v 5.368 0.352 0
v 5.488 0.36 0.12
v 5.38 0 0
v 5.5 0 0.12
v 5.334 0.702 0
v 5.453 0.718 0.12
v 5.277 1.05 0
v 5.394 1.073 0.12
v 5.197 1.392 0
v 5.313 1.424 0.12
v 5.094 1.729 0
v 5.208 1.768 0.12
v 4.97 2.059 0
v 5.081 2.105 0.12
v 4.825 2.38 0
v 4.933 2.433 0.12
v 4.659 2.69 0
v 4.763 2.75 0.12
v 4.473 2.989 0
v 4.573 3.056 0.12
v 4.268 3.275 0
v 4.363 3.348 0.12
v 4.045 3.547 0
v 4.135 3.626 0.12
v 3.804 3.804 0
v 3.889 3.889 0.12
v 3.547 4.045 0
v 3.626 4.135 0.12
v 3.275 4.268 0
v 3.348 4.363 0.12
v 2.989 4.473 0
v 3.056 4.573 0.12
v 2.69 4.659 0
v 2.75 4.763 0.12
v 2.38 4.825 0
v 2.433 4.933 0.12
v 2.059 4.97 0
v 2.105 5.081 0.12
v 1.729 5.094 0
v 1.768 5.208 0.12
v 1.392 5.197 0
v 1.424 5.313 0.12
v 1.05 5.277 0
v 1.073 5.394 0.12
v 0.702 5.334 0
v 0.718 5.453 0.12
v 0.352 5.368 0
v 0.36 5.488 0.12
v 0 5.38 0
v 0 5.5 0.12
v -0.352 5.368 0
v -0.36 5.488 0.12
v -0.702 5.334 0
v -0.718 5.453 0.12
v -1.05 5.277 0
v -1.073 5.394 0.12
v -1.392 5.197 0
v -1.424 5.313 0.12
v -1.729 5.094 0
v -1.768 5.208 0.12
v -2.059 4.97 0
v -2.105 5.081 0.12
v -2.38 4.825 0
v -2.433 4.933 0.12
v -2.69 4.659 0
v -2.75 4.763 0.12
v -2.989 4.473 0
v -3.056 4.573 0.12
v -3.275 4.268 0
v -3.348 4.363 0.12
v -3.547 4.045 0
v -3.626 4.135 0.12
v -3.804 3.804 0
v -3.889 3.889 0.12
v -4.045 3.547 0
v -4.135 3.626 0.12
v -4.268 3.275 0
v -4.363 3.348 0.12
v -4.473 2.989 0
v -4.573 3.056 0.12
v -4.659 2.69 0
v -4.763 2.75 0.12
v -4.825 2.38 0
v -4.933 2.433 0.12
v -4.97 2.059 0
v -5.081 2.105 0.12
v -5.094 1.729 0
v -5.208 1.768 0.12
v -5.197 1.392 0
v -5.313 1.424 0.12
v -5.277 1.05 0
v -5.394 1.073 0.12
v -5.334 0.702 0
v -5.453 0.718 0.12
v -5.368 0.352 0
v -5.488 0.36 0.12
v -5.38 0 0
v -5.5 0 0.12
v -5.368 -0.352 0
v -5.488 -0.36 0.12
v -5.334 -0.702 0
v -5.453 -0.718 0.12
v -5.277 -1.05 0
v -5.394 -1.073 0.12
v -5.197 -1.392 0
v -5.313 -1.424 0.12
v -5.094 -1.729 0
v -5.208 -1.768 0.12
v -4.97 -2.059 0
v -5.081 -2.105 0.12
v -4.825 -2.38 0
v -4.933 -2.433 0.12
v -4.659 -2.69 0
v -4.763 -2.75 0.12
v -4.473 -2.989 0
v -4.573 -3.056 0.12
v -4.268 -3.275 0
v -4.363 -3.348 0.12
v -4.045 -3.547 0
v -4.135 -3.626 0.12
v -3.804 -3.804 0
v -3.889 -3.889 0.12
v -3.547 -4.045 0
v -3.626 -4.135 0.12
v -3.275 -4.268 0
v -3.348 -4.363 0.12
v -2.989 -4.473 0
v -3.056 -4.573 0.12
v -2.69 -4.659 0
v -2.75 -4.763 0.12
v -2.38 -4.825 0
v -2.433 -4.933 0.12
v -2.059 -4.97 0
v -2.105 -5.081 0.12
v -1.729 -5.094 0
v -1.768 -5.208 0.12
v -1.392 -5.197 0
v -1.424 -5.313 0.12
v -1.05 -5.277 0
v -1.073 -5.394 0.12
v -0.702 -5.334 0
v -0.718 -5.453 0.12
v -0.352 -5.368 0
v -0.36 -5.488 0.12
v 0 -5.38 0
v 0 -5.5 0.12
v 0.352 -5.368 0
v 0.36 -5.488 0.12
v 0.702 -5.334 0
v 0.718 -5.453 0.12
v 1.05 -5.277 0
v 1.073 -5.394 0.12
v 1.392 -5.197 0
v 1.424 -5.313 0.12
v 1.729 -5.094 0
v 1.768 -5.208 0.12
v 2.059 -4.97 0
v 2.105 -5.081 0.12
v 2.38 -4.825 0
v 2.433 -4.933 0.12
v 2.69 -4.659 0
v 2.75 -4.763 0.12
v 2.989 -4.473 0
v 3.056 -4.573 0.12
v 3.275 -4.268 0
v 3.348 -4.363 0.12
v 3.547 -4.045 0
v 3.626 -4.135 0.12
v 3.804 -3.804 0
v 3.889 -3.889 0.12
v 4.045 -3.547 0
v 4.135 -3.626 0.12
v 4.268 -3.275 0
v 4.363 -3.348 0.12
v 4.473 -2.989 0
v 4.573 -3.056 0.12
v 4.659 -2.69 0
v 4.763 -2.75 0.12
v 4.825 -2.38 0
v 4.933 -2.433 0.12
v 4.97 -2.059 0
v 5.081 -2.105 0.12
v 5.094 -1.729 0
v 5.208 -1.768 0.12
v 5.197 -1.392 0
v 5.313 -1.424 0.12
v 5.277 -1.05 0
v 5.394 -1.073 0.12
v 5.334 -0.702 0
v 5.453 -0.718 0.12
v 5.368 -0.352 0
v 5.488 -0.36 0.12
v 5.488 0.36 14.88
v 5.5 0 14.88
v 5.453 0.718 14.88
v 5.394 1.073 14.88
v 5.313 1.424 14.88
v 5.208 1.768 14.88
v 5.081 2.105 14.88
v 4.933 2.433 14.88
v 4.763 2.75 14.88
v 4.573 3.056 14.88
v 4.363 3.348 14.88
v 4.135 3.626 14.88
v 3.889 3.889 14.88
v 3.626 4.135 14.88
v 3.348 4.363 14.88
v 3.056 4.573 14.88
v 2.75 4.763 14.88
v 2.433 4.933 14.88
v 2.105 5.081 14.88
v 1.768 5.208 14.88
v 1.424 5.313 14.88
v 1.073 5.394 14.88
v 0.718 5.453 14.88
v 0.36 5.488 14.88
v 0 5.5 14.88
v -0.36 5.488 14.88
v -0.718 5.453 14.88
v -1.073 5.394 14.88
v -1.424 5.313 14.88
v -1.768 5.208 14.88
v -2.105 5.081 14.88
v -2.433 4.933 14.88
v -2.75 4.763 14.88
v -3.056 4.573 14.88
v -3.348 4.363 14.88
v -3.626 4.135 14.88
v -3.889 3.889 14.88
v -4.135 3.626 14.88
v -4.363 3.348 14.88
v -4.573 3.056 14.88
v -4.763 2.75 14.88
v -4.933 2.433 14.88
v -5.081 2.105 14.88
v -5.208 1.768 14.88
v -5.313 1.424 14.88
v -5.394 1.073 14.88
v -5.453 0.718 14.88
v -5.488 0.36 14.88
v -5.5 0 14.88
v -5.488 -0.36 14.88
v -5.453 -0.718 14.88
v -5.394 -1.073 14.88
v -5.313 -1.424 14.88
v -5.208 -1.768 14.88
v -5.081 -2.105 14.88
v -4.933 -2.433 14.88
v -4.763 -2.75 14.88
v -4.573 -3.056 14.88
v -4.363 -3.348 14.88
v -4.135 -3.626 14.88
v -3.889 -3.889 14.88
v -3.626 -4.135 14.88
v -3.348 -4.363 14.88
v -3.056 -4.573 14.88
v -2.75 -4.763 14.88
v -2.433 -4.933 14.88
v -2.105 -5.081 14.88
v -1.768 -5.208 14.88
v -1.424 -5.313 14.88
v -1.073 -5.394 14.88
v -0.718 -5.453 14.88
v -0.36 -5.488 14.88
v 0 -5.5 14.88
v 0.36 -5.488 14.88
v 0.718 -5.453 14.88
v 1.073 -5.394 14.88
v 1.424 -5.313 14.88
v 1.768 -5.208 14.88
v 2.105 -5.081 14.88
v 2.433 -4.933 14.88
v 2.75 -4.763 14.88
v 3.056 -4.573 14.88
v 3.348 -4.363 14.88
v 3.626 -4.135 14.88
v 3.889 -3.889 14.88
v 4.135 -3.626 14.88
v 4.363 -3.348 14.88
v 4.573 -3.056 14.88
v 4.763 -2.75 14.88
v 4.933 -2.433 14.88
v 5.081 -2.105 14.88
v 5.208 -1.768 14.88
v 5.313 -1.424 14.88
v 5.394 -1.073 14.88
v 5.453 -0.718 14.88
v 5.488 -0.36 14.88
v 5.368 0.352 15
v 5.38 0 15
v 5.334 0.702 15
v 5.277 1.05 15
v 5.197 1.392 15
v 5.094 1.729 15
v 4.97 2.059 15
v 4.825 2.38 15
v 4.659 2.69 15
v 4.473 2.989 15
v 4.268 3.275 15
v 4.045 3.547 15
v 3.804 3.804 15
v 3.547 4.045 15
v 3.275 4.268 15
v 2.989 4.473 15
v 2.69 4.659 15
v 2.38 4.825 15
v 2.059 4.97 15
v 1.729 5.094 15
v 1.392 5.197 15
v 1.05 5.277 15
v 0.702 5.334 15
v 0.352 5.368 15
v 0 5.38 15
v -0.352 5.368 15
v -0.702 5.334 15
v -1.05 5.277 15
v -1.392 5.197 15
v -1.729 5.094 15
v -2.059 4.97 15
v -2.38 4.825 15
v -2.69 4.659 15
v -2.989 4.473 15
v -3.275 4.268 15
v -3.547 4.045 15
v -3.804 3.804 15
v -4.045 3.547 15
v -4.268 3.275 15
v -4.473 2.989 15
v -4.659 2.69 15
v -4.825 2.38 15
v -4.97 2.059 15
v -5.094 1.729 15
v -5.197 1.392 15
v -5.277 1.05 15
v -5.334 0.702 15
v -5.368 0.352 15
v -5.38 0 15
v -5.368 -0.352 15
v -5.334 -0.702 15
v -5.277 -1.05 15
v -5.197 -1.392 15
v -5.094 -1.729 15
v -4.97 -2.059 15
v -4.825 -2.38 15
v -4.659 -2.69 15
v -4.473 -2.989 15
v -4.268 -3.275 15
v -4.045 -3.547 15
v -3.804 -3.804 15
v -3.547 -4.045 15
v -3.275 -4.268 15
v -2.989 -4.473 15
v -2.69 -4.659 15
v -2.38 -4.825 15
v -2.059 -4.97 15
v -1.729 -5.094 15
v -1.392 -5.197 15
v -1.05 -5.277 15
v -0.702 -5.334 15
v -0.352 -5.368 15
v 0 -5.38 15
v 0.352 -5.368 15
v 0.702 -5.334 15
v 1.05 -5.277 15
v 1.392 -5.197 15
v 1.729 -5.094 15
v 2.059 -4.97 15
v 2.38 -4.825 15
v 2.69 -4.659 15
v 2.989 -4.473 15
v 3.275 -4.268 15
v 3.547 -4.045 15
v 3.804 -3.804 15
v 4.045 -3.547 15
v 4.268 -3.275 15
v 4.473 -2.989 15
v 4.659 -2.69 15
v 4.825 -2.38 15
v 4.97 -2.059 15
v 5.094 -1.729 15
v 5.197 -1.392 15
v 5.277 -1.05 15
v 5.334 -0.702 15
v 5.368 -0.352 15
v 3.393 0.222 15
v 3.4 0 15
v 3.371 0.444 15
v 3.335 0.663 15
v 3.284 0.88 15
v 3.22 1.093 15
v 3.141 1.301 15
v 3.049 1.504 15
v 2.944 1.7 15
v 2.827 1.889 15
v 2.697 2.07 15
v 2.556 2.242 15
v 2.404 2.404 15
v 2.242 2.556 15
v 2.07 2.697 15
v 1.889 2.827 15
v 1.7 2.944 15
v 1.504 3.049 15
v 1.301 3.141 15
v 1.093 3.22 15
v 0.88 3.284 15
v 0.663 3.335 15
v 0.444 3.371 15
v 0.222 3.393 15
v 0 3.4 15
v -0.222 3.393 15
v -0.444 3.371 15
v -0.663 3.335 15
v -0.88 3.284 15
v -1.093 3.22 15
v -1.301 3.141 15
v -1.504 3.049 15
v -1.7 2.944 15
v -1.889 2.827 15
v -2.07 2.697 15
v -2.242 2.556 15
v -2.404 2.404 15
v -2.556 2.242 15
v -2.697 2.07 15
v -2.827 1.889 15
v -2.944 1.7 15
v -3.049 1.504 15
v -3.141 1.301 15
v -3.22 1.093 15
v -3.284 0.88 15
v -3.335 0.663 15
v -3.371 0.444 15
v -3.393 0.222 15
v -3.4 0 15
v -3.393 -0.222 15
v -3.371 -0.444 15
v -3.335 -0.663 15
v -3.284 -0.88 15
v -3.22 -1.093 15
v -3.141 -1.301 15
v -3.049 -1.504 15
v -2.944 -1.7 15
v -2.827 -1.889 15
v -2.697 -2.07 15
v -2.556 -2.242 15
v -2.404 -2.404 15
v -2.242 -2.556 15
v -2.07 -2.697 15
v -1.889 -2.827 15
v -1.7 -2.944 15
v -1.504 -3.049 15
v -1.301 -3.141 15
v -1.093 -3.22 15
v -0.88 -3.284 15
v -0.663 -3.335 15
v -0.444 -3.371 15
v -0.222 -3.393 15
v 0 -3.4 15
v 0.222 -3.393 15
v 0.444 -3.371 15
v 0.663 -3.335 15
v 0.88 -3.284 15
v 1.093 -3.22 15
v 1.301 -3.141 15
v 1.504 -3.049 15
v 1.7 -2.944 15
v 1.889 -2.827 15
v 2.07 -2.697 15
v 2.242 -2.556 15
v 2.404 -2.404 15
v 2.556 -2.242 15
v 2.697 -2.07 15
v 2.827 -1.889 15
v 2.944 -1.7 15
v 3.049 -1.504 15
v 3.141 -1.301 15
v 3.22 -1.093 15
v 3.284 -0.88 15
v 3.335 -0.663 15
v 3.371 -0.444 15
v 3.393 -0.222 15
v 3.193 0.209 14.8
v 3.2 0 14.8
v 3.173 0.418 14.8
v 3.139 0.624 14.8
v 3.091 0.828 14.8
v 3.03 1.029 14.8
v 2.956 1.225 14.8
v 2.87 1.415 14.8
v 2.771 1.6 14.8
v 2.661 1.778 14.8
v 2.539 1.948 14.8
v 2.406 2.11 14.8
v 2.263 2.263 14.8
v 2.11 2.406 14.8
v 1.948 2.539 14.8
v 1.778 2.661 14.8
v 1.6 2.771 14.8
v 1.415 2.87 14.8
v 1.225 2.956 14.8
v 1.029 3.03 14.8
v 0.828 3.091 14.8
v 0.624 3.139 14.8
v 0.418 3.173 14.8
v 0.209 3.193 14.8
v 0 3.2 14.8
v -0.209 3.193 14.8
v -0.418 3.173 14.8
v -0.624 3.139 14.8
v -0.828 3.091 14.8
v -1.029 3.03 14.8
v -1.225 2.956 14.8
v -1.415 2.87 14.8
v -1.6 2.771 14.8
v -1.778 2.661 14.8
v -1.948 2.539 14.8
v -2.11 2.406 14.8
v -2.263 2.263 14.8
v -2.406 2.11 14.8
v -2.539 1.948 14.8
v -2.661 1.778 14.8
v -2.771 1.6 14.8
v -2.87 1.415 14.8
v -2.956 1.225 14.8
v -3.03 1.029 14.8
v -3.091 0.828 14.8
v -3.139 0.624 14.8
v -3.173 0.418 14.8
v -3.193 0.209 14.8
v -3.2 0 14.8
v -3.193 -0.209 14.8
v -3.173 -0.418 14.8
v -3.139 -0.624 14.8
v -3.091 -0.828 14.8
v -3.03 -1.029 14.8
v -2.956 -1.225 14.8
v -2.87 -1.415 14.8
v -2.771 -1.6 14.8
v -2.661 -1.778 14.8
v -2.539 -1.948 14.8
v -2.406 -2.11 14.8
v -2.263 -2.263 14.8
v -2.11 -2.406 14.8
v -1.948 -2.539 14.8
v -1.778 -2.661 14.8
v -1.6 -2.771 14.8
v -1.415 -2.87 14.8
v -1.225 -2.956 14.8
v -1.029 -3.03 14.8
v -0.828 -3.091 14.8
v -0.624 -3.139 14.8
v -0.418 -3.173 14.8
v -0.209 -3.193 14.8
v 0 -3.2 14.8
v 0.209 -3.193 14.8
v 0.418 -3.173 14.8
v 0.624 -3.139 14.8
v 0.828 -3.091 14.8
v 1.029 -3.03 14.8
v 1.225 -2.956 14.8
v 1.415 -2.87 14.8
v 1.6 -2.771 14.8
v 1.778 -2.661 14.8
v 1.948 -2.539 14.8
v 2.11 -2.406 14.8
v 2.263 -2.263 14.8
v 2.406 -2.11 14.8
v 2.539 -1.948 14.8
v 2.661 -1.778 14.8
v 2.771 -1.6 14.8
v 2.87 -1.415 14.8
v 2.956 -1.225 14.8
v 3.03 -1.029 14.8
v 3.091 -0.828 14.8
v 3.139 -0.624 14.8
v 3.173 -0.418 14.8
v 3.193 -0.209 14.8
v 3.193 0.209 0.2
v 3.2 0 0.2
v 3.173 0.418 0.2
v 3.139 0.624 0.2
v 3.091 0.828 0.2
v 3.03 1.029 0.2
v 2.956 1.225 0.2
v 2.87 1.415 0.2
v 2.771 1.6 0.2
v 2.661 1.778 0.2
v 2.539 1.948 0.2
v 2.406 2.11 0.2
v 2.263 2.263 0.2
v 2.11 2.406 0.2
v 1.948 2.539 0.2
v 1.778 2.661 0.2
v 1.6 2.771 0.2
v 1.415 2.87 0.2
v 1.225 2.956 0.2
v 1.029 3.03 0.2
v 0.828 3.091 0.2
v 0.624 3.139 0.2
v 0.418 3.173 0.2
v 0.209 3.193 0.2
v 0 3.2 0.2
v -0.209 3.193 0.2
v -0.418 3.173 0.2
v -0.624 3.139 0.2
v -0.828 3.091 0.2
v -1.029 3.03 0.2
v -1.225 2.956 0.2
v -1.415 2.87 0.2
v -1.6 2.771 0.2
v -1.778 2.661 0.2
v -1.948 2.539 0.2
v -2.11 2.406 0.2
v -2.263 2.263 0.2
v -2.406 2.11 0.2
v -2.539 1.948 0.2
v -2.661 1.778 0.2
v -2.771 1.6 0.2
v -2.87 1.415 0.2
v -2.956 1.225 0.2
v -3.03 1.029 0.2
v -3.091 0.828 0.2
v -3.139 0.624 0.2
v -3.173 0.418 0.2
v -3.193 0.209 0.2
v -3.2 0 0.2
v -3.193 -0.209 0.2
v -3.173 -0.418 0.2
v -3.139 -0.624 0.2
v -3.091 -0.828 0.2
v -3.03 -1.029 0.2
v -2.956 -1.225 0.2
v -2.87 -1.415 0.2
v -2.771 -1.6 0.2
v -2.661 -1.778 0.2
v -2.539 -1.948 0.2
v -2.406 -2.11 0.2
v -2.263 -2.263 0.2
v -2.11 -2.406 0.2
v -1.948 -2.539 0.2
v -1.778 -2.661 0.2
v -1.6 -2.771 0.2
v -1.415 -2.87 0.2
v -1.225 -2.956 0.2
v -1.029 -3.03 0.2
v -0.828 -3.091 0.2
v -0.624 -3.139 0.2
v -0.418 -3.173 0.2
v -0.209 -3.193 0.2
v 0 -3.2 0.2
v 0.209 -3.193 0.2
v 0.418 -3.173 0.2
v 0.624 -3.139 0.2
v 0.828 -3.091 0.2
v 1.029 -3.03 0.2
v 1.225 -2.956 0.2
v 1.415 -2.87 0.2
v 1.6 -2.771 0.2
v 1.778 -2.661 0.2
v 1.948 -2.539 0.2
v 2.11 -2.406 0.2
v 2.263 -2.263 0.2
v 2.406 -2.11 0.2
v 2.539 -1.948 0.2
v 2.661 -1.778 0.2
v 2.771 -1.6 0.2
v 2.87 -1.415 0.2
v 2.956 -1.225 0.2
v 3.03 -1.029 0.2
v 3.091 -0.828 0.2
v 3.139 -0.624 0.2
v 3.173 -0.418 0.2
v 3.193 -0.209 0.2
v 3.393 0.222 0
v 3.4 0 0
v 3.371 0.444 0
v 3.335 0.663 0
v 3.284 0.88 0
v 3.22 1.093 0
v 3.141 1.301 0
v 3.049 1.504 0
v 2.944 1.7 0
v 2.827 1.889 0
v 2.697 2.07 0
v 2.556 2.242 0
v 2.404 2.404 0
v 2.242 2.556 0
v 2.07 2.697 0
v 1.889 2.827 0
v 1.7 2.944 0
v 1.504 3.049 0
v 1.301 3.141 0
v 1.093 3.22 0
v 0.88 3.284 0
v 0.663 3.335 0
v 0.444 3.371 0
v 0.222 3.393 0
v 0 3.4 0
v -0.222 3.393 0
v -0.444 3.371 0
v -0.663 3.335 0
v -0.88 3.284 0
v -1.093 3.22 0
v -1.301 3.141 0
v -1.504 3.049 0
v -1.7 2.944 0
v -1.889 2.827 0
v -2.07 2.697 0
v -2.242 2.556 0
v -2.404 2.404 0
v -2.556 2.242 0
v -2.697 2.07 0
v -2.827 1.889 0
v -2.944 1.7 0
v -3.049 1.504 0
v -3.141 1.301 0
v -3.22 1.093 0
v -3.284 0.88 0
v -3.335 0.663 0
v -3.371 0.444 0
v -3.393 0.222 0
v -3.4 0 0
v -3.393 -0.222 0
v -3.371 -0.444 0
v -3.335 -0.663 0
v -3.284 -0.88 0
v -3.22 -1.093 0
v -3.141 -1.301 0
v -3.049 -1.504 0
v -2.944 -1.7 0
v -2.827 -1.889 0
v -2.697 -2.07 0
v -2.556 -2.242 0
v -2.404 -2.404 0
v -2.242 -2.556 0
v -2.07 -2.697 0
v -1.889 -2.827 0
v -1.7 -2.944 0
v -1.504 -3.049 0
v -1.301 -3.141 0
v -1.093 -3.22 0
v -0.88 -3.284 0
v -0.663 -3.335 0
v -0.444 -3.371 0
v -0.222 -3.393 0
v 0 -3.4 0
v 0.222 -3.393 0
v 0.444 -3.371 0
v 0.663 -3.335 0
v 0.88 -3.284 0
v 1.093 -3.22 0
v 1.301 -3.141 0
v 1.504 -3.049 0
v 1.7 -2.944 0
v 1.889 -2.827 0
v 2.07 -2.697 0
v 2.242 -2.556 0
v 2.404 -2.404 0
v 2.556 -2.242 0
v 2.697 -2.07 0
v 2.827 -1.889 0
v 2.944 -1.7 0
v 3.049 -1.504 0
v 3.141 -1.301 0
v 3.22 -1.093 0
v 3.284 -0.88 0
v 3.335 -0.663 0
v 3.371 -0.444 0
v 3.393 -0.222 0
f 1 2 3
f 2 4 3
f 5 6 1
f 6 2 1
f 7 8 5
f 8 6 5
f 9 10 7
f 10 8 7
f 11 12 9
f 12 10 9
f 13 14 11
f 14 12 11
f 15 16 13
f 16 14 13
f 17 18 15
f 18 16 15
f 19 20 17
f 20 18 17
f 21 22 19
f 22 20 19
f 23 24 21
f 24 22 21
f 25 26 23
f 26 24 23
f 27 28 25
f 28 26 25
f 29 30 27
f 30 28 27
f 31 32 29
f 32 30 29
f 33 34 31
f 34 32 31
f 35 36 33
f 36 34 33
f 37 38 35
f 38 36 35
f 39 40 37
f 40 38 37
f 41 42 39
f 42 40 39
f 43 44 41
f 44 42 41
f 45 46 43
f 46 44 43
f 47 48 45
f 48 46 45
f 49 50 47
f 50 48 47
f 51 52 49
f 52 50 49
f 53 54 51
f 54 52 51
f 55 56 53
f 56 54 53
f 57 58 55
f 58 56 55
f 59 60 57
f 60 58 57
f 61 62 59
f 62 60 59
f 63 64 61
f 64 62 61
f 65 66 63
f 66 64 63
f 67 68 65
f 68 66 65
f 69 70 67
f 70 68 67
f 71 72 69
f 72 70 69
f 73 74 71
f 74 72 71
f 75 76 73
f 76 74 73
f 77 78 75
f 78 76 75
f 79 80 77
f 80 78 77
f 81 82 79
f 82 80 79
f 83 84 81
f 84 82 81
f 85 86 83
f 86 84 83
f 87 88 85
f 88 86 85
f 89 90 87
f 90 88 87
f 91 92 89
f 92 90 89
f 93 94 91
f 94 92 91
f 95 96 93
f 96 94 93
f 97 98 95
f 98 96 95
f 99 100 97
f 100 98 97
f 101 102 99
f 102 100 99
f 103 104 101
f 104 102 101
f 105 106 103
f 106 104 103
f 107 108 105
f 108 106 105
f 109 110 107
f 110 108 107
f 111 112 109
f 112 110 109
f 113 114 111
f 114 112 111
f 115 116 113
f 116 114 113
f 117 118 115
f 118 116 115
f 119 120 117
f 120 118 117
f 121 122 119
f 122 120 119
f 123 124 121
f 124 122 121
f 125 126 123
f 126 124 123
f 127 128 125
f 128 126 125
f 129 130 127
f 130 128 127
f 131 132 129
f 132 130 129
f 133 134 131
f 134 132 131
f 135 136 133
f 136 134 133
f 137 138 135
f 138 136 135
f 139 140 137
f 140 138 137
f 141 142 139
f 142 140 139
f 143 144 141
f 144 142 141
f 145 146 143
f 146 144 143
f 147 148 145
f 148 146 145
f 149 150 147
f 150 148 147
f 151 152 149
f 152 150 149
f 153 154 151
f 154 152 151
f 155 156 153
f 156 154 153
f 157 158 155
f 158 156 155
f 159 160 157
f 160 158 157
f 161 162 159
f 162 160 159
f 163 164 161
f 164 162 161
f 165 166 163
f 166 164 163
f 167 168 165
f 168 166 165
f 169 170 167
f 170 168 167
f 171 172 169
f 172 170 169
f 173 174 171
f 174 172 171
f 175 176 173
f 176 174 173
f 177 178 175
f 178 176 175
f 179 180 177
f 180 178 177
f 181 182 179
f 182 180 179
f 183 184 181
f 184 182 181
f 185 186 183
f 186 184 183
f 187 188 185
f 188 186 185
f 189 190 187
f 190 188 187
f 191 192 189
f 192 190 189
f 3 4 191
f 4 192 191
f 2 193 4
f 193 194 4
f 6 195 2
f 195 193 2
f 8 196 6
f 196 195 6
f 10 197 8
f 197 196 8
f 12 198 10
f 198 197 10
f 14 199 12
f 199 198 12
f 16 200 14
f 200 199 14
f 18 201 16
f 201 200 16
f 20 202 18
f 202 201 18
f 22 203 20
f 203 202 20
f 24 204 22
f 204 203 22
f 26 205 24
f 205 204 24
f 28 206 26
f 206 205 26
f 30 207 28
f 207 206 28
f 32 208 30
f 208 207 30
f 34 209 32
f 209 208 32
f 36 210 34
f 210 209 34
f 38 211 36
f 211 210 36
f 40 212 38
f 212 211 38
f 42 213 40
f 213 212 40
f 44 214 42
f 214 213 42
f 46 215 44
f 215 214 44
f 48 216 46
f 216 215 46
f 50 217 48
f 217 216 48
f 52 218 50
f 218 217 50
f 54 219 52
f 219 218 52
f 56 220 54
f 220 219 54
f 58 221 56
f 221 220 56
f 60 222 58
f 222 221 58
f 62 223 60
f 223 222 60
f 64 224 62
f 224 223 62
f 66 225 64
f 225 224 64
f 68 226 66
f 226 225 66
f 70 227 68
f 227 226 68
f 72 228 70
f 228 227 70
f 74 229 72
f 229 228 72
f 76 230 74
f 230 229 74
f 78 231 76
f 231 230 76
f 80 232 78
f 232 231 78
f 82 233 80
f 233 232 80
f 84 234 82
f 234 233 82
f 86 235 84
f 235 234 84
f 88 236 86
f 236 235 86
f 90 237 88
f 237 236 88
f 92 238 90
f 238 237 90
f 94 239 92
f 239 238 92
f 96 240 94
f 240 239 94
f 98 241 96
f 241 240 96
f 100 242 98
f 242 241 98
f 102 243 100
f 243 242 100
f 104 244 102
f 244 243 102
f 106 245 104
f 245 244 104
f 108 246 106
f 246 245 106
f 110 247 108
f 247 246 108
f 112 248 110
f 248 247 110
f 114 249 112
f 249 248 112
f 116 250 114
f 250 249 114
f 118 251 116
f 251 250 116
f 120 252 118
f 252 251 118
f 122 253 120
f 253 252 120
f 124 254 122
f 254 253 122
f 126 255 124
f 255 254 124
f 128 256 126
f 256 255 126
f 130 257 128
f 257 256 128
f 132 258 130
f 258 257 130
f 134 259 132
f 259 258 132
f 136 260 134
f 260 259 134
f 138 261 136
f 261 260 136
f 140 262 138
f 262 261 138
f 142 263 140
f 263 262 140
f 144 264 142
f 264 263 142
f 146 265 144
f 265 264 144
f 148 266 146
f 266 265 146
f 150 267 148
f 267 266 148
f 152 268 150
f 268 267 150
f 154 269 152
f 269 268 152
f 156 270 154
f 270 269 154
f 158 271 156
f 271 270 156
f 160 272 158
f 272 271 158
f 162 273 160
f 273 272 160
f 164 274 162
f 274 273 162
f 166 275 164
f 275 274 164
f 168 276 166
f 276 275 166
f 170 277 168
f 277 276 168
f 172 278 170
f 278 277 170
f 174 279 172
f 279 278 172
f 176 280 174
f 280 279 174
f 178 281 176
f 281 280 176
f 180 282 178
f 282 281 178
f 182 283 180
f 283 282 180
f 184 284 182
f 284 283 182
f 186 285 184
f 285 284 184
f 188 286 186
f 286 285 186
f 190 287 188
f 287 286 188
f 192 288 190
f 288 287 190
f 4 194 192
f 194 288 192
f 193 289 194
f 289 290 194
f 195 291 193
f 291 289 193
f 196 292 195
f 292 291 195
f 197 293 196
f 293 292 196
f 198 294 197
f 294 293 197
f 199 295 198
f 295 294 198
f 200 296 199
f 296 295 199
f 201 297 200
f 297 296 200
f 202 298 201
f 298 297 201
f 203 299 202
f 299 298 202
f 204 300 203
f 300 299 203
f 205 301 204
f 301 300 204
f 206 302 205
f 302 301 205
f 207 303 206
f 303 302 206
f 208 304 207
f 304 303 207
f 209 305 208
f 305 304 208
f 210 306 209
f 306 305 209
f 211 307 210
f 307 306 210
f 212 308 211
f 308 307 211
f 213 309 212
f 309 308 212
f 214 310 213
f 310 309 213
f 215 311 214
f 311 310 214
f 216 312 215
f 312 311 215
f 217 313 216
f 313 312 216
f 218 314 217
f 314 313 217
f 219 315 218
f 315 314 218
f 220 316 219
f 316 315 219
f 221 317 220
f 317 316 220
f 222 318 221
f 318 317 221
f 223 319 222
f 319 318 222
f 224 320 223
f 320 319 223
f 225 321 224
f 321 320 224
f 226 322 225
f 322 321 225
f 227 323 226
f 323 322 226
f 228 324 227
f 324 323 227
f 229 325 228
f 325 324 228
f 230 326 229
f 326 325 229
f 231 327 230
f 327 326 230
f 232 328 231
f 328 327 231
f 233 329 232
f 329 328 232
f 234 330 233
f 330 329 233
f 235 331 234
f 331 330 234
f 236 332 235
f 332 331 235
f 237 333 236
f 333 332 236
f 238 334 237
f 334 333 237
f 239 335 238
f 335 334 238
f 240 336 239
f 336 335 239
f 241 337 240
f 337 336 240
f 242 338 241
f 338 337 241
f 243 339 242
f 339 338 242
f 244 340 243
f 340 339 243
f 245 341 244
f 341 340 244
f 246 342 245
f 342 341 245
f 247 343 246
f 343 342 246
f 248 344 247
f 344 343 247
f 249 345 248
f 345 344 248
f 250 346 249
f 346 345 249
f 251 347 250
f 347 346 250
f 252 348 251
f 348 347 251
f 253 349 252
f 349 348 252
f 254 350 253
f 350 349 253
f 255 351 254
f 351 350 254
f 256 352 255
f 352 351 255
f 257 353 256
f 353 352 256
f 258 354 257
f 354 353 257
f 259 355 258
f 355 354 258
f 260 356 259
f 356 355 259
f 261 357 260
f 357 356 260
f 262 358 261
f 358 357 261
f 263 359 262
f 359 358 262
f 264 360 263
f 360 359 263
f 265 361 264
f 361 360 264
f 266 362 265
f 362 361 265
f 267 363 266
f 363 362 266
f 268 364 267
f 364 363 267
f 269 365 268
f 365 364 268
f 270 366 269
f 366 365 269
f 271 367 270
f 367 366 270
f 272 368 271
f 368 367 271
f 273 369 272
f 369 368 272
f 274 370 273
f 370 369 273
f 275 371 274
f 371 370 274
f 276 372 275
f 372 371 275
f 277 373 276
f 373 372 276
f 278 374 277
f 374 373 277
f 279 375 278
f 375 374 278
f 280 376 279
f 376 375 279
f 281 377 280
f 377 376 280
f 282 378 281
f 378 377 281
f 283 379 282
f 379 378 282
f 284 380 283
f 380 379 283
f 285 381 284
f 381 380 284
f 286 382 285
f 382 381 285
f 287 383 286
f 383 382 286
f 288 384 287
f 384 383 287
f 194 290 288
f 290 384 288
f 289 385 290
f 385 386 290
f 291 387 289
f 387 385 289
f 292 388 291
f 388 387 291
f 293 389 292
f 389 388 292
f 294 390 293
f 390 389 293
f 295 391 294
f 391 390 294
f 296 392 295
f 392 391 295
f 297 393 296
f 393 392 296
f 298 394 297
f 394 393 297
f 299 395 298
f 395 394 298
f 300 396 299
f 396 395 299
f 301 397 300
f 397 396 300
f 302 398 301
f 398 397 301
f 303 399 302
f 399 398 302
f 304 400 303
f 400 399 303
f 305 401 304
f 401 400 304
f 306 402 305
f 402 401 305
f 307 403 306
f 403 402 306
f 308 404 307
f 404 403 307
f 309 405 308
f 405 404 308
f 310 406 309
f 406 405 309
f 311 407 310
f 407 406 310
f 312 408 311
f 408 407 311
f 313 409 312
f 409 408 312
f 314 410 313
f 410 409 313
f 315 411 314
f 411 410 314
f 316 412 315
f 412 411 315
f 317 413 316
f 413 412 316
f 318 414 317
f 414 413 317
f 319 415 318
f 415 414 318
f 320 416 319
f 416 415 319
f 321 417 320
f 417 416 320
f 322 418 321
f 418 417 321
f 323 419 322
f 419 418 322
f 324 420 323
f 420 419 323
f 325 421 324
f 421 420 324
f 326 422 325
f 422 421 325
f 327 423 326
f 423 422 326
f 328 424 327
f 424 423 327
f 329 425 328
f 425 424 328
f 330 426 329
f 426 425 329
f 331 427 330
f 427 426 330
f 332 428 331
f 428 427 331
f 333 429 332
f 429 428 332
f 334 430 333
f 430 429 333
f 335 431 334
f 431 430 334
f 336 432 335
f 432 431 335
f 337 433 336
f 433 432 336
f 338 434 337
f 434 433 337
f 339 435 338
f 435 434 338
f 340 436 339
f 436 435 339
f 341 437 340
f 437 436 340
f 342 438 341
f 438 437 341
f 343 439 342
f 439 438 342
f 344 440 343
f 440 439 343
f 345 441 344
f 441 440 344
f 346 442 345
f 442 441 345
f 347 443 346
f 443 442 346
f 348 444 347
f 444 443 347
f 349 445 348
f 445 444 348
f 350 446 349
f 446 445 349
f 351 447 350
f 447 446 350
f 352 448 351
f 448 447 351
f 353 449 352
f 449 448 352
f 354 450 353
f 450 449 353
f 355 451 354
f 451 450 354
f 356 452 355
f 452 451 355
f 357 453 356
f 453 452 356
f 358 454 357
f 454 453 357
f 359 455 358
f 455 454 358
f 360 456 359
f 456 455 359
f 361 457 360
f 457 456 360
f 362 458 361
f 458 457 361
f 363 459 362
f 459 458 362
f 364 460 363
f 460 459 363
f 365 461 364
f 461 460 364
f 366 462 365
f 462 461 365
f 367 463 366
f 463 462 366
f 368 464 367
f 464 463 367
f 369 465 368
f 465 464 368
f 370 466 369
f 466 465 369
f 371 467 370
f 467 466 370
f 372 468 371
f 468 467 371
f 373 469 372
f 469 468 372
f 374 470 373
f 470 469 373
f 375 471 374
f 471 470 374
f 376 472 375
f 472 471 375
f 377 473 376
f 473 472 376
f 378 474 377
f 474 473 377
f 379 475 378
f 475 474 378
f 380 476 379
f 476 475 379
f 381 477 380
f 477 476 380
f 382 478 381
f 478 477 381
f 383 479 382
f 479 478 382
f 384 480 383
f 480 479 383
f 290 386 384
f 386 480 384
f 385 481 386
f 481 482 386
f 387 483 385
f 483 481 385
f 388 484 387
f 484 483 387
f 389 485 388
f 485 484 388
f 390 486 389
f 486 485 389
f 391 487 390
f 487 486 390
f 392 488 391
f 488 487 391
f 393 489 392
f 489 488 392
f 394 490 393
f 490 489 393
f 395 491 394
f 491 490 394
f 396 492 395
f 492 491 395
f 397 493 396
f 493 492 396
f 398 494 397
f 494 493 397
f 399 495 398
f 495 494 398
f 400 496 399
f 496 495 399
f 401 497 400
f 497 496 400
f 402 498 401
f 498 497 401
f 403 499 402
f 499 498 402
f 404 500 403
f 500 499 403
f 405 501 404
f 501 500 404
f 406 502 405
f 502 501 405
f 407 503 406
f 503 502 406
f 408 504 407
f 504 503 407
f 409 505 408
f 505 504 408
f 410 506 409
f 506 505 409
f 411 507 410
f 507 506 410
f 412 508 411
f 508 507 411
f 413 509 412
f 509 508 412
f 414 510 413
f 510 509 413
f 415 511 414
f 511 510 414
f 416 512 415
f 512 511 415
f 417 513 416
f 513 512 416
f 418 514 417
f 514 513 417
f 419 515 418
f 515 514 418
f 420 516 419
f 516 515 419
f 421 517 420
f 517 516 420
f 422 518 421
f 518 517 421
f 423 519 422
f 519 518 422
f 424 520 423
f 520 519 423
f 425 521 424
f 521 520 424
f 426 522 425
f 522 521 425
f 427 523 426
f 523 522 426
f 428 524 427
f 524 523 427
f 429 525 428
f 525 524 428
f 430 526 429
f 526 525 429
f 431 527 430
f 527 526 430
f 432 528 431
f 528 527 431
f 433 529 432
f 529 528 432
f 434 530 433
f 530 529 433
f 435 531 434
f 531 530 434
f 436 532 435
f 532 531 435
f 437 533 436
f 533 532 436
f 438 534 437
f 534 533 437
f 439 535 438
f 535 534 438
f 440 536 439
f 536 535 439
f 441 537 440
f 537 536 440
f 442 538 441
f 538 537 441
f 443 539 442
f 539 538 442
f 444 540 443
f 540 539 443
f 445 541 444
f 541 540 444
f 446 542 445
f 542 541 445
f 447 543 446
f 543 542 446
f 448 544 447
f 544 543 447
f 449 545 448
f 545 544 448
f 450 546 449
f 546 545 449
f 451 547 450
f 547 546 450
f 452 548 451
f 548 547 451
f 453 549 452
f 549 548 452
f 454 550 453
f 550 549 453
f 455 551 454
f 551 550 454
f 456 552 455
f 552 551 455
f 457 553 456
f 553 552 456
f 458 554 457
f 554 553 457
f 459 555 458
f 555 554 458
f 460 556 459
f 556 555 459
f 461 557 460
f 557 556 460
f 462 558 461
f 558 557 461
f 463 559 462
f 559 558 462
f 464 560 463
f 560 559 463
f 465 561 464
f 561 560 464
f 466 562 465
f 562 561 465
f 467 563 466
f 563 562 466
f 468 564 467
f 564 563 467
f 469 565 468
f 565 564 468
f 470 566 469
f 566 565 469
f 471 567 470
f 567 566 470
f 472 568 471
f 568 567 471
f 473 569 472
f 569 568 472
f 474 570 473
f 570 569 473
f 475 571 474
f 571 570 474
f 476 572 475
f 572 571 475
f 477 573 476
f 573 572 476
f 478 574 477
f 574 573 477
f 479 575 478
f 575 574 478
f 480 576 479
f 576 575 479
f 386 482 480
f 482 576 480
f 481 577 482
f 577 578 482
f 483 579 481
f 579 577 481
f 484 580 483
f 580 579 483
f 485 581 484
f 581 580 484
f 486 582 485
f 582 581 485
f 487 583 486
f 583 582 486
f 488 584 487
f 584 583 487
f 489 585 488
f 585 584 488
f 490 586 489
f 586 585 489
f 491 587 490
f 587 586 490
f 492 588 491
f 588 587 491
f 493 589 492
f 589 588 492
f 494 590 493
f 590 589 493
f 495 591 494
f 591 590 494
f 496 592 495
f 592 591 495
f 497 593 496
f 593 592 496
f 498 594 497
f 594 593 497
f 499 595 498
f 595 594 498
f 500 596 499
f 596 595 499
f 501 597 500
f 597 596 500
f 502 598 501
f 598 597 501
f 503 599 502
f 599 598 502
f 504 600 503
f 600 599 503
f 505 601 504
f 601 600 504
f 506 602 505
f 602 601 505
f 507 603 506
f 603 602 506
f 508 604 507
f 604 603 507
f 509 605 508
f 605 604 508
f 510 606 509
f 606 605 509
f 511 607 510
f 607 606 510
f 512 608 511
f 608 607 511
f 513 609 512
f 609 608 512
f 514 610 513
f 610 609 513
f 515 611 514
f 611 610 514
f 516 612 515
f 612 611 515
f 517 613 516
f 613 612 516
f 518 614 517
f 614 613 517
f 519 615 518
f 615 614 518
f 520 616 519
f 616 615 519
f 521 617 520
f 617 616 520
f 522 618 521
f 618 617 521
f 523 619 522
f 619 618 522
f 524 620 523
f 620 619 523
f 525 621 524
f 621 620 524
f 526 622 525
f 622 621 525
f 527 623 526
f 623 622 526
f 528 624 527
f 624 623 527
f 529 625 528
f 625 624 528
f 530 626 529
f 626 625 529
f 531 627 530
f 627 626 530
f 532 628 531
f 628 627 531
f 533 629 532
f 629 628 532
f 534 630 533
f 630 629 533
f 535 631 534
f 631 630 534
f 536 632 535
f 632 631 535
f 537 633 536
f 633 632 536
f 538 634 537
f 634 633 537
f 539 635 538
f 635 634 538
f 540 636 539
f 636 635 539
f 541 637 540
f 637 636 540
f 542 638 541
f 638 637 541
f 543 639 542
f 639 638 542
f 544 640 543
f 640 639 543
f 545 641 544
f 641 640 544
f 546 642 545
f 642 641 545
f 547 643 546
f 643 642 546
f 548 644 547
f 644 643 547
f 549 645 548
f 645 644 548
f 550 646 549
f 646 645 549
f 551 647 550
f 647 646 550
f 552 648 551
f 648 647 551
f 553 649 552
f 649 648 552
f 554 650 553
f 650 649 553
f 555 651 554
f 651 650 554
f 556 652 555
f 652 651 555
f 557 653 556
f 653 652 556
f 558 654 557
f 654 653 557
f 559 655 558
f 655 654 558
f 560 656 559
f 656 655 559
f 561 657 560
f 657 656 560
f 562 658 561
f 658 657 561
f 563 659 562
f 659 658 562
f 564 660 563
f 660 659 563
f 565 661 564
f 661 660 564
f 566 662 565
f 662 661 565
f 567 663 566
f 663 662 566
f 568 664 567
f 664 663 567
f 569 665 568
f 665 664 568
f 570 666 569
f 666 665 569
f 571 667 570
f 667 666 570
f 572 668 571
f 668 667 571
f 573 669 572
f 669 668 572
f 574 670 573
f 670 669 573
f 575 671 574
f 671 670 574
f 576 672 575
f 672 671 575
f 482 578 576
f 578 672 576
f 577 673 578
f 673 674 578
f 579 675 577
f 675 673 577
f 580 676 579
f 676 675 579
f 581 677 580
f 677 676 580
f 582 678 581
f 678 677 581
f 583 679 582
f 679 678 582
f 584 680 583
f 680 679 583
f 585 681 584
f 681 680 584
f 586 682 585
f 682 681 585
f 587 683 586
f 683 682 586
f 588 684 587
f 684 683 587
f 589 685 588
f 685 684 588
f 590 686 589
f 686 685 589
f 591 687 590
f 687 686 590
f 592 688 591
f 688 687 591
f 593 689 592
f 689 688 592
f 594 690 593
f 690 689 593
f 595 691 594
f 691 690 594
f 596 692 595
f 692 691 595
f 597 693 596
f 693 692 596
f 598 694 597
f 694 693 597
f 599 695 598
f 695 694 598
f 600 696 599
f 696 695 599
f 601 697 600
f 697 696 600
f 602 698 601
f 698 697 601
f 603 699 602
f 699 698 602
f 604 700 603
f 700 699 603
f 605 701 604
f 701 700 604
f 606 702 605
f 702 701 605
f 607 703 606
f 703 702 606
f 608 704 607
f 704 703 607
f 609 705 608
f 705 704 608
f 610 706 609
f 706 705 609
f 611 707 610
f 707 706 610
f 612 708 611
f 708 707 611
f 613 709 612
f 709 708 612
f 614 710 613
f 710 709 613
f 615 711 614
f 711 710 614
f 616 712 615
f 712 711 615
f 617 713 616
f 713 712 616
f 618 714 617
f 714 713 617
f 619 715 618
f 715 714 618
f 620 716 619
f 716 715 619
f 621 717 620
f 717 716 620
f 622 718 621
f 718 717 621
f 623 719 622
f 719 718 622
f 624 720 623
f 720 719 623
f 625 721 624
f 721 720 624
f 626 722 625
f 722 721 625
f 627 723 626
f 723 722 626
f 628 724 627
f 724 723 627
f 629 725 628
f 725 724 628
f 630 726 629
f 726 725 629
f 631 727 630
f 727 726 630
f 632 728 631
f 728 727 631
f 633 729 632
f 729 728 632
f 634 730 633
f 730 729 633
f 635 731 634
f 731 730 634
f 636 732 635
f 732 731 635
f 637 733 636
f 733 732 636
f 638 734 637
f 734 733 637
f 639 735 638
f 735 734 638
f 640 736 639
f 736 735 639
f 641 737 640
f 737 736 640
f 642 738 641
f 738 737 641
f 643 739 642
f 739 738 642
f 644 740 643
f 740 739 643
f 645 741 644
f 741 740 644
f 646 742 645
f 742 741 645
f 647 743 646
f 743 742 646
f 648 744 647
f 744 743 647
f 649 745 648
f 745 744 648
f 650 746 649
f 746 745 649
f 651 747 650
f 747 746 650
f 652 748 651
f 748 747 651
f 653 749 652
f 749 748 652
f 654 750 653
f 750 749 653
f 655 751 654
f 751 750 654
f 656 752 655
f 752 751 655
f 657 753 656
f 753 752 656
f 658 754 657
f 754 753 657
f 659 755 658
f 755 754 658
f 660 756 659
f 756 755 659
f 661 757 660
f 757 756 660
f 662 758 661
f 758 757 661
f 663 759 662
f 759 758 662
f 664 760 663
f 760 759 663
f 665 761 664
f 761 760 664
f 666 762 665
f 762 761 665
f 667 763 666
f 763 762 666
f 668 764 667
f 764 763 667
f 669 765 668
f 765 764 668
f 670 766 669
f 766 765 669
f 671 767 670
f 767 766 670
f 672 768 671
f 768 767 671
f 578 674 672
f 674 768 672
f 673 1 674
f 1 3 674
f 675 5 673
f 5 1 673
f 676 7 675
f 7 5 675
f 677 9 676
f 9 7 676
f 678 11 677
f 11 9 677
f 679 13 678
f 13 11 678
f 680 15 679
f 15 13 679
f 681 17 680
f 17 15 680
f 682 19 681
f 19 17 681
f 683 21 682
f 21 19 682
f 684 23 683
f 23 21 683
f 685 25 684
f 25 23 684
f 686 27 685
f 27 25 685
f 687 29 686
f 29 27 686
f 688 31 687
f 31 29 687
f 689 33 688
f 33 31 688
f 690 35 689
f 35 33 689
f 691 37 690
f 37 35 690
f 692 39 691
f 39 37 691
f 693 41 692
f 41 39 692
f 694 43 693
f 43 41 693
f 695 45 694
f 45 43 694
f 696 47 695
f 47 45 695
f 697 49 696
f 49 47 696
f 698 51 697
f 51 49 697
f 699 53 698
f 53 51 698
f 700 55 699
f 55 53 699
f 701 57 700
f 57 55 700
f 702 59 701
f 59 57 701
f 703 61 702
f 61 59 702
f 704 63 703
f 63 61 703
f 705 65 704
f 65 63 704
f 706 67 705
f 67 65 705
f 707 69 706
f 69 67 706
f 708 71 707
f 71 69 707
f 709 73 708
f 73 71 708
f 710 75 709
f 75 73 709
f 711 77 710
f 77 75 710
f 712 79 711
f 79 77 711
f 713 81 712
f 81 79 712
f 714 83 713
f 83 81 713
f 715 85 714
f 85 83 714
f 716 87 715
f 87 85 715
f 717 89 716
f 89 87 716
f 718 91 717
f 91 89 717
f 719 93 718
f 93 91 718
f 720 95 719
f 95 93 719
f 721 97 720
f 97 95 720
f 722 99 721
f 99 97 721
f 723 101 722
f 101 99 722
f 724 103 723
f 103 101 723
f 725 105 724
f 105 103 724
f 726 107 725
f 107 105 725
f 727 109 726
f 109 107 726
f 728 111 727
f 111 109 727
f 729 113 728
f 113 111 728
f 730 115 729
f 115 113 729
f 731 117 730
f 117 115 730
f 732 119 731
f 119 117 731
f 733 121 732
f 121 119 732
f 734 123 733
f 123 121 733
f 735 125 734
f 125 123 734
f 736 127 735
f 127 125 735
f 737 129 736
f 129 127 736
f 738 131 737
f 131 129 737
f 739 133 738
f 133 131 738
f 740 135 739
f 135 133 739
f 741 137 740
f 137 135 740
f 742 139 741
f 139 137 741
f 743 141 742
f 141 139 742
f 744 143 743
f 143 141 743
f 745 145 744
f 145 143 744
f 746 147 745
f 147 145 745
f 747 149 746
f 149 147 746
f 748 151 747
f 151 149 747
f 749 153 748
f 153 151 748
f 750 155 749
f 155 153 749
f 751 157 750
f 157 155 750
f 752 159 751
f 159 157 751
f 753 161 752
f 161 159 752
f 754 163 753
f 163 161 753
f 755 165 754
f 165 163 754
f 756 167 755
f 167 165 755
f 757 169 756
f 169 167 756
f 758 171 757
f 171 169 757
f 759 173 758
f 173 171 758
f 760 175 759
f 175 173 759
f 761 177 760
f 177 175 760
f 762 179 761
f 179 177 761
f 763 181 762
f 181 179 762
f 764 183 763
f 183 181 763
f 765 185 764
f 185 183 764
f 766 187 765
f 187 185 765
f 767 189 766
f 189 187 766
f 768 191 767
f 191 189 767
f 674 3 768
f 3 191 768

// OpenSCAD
// OOMP generic catalogue model; units: mm.
// Stud length is additional to body depth. Tapping depths are model assumptions.
variant = "full"; // [full, display]
family = "spacer";
connection_type = "plain";
depth_mm = 15;
stud_length_mm = 0;
tapped_depth_mm = 0;
bore_mm = 6.4;
outer_diameter_mm = 11;
across_flats_mm = 6;
thread_nominal_diameter_mm = 3;
thread_pitch_mm = 0.5;
edge_chamfer_mm = 0.12;
mouth_chamfer_mm = 0.2;
angular_segments = 96;
samples_per_pitch = 16;

// Boundary travels up the outside, then down any tapped/plain bore.
// Equal-height rings at shoulders form the annular shoulder faces.
n = angular_segments;
threaded = family == "standoff";
has_stud = connection_type == "stud_to_tapped" || connection_type == "stud_to_stud";
two_studs = connection_type == "stud_to_stud";
through = !threaded || connection_type == "tapped_to_tapped";
pitch = thread_pitch_mm;
diameter = threaded ? thread_nominal_diameter_mm : bore_mm;
minor = diameter - 5*sqrt(3)*pitch/8;
transition = mouth_chamfer_mm + (threaded ? 5*sqrt(3)*pitch/16 : 0);
tip_chamfer = mouth_chamfer_mm + 17*sqrt(3)*pitch/48;
function sorted(v) = len(v)<=1 ? v : let(p=v[0])
    concat(sorted([for(x=v) if(x<p-1e-8) x]), [p], sorted([for(x=v) if(x>p+1e-8) x]));
function reverse(v) = [for(i=[len(v)-1:-1:0]) v[i]];
function theta(i) = i*360/n;
function fract(x) = x-floor(x);
function phase_distance(i,z) = abs(fract(z/pitch-theta(i)/360+0.5)-0.5);
function thread_r(i,z) = minor/2 + min(5*sqrt(3)*pitch/16,
    max(0,(phase_distance(i,z)-0.125)*pitch*sqrt(3)));
function stud_r(i,z,tip) = min(diameter/2 - (variant=="full" ?
    min(17*sqrt(3)*pitch/48,max(0,(phase_distance(i,z)-0.0625)*pitch*sqrt(3))) : 0),
    diameter/2-tip_chamfer+abs(z-tip));
function body_r(i,z) = (threaded ? across_flats_mm/2/cos(theta(i)%60-30) : outer_diameter_mm/2)
    - max(0,edge_chamfer_mm-min(z,depth_mm-z));
function bore_r(i,z) = max(threaded ? (variant=="full" ? thread_r(i,z) : minor/2) : diameter/2,
    diameter/2+mouth_chamfer_mm-(through ? min(z,depth_mm-z) : depth_mm-z));
function stud_z(a,b,tip) = let(count=variant=="full" ? ceil(stud_length_mm/pitch*samples_per_pitch) : 1)
    sorted(concat([for(i=[0:count]) a+(b-a)*i/count], [tip==a ? tip+tip_chamfer : tip-tip_chamfer]));
body_z = sorted([0,edge_chamfer_mm,depth_mm-edge_chamfer_mm,depth_mm]);
low = through ? 0 : depth_mm-tapped_depth_mm;
count = threaded && variant=="full" ? ceil((depth_mm-low)/pitch*samples_per_pitch) : 1;
bore_z = two_studs ? [] : reverse(sorted(concat(
    [for(i=[0:count]) low+(depth_mm-low)*i/count],
    [depth_mm-mouth_chamfer_mm,depth_mm-transition],
    through ? [mouth_chamfer_mm,transition] : [])));
// Ring descriptors: [height, kind, tip]. Kind: 0 body, 1 stud, 2 bore.
rings = concat(
    has_stud ? [for(z=stud_z(-stud_length_mm,0,-stud_length_mm)) [z,1,-stud_length_mm]] : [],
    [for(z=body_z) [z,0,0]],
    two_studs ? [for(z=stud_z(depth_mm,depth_mm+stud_length_mm,depth_mm+stud_length_mm)) [z,1,depth_mm+stud_length_mm]] : [],
    [for(z=bore_z) [z,2,0]]);
function radius(i,ring) = ring[1]==0 ? body_r(i,ring[0]) :
    ring[1]==1 ? stud_r(i,ring[0],ring[2]) : bore_r(i,ring[0]);
points = concat([for(ring=rings) for(i=[0:n-1])
    [radius(i,ring)*cos(theta(i)),radius(i,ring)*sin(theta(i)),ring[0]]],
    through ? [] : [[0,0,rings[0][0]],[0,0,rings[len(rings)-1][0]]]);
center = len(rings)*n;
last = (len(rings)-1)*n;
// OpenSCAD winding is opposite to STL winding.
faces = concat(
    [for(j=[0:len(rings)-(through ? 1 : 2)]) for(i=[0:n-1]) each
        let(a=j*n+i,b=j*n+(i+1)%n,c=((j+1)%len(rings))*n+(i+1)%n,d=((j+1)%len(rings))*n+i)
        [[a,c,b],[a,d,c]]],
    through ? [] : [for(i=[0:n-1]) each let(k=(i+1)%n)
        [[center,i,k],[center+1,last+k,last+i]]]);
assert(family=="spacer" || family=="standoff");
assert(!threaded || connection_type=="tapped_to_tapped" || has_stud);
assert(depth_mm>0 && diameter>0 && pitch>0);
assert(variant=="full" || variant=="display");
assert(n>=24 && n%12==0 && samples_per_pitch>=8);
assert(mouth_chamfer_mm>0 && mouth_chamfer_mm<depth_mm/2);
assert(edge_chamfer_mm>=0 && edge_chamfer_mm<depth_mm/2);
assert(diameter+4*max(mouth_chamfer_mm,edge_chamfer_mm) < (threaded ? across_flats_mm : outer_diameter_mm));
assert(!has_stud || stud_length_mm>2*mouth_chamfer_mm);
assert(!through || !threaded || 2*transition<depth_mm);
assert(connection_type!="stud_to_tapped" || (tapped_depth_mm>transition && tapped_depth_mm<depth_mm));
color([0.86,0.85,0.81]) polyhedron(points=points,faces=faces,convexity=20);
